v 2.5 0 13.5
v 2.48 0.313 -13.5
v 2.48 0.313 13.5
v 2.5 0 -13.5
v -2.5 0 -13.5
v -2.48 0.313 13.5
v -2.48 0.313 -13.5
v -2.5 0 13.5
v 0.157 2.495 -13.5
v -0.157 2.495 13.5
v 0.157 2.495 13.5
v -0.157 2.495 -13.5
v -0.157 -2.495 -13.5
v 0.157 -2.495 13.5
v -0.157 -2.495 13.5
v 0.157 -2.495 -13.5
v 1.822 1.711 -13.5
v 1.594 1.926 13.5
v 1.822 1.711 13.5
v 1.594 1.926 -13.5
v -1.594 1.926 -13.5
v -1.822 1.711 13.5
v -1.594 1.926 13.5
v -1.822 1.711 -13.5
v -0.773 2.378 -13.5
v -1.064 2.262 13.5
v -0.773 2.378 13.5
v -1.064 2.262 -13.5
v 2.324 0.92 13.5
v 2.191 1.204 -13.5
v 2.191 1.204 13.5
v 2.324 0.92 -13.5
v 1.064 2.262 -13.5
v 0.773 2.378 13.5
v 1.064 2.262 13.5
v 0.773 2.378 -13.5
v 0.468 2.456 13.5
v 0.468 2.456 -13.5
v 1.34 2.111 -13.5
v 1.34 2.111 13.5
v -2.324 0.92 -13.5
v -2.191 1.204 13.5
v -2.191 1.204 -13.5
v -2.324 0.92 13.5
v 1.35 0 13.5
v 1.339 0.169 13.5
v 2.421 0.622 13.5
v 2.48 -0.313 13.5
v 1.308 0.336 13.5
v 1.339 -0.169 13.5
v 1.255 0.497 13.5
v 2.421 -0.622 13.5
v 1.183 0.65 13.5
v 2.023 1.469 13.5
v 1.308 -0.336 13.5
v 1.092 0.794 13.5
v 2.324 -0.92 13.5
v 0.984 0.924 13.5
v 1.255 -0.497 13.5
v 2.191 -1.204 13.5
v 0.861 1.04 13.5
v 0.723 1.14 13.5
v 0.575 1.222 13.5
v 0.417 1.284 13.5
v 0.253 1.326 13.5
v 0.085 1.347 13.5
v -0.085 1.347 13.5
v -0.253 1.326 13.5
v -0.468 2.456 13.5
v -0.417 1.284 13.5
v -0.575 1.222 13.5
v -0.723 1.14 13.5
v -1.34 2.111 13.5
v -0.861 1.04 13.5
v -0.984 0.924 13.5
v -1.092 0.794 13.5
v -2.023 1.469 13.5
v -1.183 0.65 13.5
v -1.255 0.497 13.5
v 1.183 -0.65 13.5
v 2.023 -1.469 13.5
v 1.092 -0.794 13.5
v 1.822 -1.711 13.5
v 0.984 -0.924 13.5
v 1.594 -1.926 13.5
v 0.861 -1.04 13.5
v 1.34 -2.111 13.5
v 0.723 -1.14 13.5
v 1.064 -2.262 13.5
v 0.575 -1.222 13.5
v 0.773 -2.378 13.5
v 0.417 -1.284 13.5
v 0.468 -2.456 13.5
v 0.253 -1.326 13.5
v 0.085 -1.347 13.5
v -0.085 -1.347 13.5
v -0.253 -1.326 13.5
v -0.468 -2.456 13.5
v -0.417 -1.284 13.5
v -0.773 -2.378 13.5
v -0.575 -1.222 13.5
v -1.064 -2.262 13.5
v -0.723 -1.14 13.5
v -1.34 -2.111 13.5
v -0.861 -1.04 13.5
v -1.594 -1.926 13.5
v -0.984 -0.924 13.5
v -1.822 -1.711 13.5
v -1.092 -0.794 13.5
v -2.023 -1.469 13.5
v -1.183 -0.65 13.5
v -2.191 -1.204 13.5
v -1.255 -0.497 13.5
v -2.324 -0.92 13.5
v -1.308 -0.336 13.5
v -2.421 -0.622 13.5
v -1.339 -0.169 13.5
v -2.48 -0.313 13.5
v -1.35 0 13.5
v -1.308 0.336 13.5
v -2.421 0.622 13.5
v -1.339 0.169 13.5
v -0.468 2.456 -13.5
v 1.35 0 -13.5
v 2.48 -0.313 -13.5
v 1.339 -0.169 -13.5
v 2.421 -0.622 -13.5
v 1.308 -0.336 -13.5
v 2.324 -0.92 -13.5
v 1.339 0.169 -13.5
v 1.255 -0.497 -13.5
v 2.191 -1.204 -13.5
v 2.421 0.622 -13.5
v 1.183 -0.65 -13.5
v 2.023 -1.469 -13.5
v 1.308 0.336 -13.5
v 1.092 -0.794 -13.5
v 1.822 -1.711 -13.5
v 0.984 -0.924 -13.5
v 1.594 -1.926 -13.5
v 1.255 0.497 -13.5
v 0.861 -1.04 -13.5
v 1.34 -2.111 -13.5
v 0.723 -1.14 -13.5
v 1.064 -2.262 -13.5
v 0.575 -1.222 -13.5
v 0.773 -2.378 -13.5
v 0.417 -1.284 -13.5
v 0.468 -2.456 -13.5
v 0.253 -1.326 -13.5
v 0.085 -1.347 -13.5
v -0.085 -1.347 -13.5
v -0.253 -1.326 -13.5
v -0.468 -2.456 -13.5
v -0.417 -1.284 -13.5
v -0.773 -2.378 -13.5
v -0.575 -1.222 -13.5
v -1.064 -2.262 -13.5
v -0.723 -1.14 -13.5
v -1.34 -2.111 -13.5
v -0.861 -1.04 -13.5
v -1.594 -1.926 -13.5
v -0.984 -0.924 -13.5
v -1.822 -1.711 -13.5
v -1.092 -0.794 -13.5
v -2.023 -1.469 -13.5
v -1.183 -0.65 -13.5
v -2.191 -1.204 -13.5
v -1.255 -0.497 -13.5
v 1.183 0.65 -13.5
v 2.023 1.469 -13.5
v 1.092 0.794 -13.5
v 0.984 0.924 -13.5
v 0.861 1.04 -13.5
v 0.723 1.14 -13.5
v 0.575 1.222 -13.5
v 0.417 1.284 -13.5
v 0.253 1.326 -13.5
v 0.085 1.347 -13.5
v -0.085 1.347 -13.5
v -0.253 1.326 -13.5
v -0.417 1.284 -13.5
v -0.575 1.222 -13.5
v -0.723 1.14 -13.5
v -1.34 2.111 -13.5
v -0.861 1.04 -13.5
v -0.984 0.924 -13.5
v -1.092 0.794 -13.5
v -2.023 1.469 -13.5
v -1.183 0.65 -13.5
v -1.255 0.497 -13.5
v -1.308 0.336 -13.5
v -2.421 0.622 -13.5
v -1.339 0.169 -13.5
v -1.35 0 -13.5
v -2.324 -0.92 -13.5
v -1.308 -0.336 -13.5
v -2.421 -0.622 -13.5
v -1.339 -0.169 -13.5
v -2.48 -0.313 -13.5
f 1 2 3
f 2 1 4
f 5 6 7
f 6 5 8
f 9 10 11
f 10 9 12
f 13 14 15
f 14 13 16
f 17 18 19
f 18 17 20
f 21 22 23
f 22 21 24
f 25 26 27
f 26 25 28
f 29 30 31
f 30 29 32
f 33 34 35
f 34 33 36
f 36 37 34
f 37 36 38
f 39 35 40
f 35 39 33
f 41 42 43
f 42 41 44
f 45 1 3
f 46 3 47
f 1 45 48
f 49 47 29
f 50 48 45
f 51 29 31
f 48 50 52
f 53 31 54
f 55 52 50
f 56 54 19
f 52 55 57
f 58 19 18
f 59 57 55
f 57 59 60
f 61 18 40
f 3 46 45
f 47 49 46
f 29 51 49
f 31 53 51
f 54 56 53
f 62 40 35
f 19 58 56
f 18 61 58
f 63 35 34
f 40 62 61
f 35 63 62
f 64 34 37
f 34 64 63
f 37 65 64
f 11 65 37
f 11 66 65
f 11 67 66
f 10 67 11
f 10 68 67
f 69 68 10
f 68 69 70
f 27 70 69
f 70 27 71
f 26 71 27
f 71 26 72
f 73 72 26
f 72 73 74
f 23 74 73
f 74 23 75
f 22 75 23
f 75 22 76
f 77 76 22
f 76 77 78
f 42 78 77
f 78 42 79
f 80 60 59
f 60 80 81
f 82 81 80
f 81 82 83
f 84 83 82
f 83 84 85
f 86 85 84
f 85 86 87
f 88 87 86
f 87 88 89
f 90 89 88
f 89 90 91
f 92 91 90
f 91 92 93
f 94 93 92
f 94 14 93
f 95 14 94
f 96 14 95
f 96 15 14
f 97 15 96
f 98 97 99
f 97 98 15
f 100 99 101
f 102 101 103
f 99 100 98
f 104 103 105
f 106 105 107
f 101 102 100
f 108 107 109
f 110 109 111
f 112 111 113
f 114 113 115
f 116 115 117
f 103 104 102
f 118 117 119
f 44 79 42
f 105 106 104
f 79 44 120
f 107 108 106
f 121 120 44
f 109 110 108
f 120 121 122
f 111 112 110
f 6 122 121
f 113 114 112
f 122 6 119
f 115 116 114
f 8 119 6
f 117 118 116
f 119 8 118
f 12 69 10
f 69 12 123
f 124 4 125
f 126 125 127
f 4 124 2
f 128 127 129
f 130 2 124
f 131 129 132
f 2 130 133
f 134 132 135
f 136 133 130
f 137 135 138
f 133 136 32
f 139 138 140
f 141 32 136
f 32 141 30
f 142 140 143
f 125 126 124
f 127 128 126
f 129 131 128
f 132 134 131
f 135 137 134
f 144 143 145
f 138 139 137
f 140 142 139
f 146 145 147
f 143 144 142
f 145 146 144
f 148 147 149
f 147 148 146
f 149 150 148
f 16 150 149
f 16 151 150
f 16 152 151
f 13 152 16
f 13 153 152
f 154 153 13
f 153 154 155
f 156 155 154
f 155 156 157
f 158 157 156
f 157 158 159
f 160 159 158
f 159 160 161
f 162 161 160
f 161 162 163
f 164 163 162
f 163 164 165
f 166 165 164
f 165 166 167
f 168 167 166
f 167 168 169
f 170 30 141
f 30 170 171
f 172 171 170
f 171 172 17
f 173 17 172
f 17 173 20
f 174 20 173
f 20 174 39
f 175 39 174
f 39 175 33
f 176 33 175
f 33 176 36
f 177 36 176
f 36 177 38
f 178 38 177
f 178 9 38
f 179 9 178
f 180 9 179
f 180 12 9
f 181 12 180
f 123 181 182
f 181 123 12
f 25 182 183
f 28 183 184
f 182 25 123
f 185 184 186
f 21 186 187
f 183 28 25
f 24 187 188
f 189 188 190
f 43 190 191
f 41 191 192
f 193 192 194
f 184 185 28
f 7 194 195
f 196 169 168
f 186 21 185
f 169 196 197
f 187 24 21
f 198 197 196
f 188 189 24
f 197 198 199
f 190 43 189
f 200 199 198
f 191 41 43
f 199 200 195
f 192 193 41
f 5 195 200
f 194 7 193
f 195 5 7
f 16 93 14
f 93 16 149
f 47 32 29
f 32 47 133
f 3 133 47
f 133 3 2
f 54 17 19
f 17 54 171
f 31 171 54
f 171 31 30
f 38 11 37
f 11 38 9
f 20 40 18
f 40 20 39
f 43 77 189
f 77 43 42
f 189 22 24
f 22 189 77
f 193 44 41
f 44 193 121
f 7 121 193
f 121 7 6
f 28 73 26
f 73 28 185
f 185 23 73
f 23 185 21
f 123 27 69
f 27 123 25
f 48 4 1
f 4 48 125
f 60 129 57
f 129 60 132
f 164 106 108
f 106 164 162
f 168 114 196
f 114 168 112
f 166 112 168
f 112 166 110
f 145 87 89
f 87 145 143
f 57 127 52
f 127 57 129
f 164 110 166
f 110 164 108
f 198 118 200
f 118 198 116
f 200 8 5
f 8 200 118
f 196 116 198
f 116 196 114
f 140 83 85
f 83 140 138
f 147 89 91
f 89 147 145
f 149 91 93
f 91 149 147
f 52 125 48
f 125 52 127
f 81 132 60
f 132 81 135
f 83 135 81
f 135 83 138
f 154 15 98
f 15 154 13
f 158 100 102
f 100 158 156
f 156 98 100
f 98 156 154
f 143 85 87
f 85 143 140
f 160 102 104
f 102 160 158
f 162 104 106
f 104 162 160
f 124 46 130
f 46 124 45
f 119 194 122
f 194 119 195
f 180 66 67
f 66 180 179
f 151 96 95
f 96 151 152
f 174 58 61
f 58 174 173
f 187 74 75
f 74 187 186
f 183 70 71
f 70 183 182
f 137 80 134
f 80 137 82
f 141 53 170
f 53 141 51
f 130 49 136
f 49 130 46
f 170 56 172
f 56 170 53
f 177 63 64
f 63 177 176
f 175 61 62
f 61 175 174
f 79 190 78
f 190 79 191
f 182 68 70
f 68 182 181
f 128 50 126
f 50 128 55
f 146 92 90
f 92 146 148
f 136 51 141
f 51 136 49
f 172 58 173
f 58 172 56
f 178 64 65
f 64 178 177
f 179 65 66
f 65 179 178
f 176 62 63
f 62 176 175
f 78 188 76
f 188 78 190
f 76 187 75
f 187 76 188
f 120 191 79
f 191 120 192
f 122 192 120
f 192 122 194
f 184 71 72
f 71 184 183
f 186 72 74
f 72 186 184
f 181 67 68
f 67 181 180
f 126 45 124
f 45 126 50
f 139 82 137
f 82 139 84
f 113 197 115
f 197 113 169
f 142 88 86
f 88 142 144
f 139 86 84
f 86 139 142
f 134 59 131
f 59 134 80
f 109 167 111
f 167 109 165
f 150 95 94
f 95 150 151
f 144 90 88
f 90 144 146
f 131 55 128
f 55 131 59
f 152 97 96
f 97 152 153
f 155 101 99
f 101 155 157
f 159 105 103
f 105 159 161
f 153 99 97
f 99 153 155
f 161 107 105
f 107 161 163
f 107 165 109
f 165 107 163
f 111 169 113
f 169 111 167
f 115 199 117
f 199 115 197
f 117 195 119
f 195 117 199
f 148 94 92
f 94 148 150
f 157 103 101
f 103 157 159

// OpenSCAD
$fn = 50;


difference() {
	union() {
		translate(v = [0, 0, -13.5000000000]) {
			cylinder(h = 27, r = 2.5000000000);
		}
	}
	union() {
		translate(v = [0, 0, -100.0000000000]) {
			cylinder(h = 200, r = 1.3500000000);
		}
	}
}
